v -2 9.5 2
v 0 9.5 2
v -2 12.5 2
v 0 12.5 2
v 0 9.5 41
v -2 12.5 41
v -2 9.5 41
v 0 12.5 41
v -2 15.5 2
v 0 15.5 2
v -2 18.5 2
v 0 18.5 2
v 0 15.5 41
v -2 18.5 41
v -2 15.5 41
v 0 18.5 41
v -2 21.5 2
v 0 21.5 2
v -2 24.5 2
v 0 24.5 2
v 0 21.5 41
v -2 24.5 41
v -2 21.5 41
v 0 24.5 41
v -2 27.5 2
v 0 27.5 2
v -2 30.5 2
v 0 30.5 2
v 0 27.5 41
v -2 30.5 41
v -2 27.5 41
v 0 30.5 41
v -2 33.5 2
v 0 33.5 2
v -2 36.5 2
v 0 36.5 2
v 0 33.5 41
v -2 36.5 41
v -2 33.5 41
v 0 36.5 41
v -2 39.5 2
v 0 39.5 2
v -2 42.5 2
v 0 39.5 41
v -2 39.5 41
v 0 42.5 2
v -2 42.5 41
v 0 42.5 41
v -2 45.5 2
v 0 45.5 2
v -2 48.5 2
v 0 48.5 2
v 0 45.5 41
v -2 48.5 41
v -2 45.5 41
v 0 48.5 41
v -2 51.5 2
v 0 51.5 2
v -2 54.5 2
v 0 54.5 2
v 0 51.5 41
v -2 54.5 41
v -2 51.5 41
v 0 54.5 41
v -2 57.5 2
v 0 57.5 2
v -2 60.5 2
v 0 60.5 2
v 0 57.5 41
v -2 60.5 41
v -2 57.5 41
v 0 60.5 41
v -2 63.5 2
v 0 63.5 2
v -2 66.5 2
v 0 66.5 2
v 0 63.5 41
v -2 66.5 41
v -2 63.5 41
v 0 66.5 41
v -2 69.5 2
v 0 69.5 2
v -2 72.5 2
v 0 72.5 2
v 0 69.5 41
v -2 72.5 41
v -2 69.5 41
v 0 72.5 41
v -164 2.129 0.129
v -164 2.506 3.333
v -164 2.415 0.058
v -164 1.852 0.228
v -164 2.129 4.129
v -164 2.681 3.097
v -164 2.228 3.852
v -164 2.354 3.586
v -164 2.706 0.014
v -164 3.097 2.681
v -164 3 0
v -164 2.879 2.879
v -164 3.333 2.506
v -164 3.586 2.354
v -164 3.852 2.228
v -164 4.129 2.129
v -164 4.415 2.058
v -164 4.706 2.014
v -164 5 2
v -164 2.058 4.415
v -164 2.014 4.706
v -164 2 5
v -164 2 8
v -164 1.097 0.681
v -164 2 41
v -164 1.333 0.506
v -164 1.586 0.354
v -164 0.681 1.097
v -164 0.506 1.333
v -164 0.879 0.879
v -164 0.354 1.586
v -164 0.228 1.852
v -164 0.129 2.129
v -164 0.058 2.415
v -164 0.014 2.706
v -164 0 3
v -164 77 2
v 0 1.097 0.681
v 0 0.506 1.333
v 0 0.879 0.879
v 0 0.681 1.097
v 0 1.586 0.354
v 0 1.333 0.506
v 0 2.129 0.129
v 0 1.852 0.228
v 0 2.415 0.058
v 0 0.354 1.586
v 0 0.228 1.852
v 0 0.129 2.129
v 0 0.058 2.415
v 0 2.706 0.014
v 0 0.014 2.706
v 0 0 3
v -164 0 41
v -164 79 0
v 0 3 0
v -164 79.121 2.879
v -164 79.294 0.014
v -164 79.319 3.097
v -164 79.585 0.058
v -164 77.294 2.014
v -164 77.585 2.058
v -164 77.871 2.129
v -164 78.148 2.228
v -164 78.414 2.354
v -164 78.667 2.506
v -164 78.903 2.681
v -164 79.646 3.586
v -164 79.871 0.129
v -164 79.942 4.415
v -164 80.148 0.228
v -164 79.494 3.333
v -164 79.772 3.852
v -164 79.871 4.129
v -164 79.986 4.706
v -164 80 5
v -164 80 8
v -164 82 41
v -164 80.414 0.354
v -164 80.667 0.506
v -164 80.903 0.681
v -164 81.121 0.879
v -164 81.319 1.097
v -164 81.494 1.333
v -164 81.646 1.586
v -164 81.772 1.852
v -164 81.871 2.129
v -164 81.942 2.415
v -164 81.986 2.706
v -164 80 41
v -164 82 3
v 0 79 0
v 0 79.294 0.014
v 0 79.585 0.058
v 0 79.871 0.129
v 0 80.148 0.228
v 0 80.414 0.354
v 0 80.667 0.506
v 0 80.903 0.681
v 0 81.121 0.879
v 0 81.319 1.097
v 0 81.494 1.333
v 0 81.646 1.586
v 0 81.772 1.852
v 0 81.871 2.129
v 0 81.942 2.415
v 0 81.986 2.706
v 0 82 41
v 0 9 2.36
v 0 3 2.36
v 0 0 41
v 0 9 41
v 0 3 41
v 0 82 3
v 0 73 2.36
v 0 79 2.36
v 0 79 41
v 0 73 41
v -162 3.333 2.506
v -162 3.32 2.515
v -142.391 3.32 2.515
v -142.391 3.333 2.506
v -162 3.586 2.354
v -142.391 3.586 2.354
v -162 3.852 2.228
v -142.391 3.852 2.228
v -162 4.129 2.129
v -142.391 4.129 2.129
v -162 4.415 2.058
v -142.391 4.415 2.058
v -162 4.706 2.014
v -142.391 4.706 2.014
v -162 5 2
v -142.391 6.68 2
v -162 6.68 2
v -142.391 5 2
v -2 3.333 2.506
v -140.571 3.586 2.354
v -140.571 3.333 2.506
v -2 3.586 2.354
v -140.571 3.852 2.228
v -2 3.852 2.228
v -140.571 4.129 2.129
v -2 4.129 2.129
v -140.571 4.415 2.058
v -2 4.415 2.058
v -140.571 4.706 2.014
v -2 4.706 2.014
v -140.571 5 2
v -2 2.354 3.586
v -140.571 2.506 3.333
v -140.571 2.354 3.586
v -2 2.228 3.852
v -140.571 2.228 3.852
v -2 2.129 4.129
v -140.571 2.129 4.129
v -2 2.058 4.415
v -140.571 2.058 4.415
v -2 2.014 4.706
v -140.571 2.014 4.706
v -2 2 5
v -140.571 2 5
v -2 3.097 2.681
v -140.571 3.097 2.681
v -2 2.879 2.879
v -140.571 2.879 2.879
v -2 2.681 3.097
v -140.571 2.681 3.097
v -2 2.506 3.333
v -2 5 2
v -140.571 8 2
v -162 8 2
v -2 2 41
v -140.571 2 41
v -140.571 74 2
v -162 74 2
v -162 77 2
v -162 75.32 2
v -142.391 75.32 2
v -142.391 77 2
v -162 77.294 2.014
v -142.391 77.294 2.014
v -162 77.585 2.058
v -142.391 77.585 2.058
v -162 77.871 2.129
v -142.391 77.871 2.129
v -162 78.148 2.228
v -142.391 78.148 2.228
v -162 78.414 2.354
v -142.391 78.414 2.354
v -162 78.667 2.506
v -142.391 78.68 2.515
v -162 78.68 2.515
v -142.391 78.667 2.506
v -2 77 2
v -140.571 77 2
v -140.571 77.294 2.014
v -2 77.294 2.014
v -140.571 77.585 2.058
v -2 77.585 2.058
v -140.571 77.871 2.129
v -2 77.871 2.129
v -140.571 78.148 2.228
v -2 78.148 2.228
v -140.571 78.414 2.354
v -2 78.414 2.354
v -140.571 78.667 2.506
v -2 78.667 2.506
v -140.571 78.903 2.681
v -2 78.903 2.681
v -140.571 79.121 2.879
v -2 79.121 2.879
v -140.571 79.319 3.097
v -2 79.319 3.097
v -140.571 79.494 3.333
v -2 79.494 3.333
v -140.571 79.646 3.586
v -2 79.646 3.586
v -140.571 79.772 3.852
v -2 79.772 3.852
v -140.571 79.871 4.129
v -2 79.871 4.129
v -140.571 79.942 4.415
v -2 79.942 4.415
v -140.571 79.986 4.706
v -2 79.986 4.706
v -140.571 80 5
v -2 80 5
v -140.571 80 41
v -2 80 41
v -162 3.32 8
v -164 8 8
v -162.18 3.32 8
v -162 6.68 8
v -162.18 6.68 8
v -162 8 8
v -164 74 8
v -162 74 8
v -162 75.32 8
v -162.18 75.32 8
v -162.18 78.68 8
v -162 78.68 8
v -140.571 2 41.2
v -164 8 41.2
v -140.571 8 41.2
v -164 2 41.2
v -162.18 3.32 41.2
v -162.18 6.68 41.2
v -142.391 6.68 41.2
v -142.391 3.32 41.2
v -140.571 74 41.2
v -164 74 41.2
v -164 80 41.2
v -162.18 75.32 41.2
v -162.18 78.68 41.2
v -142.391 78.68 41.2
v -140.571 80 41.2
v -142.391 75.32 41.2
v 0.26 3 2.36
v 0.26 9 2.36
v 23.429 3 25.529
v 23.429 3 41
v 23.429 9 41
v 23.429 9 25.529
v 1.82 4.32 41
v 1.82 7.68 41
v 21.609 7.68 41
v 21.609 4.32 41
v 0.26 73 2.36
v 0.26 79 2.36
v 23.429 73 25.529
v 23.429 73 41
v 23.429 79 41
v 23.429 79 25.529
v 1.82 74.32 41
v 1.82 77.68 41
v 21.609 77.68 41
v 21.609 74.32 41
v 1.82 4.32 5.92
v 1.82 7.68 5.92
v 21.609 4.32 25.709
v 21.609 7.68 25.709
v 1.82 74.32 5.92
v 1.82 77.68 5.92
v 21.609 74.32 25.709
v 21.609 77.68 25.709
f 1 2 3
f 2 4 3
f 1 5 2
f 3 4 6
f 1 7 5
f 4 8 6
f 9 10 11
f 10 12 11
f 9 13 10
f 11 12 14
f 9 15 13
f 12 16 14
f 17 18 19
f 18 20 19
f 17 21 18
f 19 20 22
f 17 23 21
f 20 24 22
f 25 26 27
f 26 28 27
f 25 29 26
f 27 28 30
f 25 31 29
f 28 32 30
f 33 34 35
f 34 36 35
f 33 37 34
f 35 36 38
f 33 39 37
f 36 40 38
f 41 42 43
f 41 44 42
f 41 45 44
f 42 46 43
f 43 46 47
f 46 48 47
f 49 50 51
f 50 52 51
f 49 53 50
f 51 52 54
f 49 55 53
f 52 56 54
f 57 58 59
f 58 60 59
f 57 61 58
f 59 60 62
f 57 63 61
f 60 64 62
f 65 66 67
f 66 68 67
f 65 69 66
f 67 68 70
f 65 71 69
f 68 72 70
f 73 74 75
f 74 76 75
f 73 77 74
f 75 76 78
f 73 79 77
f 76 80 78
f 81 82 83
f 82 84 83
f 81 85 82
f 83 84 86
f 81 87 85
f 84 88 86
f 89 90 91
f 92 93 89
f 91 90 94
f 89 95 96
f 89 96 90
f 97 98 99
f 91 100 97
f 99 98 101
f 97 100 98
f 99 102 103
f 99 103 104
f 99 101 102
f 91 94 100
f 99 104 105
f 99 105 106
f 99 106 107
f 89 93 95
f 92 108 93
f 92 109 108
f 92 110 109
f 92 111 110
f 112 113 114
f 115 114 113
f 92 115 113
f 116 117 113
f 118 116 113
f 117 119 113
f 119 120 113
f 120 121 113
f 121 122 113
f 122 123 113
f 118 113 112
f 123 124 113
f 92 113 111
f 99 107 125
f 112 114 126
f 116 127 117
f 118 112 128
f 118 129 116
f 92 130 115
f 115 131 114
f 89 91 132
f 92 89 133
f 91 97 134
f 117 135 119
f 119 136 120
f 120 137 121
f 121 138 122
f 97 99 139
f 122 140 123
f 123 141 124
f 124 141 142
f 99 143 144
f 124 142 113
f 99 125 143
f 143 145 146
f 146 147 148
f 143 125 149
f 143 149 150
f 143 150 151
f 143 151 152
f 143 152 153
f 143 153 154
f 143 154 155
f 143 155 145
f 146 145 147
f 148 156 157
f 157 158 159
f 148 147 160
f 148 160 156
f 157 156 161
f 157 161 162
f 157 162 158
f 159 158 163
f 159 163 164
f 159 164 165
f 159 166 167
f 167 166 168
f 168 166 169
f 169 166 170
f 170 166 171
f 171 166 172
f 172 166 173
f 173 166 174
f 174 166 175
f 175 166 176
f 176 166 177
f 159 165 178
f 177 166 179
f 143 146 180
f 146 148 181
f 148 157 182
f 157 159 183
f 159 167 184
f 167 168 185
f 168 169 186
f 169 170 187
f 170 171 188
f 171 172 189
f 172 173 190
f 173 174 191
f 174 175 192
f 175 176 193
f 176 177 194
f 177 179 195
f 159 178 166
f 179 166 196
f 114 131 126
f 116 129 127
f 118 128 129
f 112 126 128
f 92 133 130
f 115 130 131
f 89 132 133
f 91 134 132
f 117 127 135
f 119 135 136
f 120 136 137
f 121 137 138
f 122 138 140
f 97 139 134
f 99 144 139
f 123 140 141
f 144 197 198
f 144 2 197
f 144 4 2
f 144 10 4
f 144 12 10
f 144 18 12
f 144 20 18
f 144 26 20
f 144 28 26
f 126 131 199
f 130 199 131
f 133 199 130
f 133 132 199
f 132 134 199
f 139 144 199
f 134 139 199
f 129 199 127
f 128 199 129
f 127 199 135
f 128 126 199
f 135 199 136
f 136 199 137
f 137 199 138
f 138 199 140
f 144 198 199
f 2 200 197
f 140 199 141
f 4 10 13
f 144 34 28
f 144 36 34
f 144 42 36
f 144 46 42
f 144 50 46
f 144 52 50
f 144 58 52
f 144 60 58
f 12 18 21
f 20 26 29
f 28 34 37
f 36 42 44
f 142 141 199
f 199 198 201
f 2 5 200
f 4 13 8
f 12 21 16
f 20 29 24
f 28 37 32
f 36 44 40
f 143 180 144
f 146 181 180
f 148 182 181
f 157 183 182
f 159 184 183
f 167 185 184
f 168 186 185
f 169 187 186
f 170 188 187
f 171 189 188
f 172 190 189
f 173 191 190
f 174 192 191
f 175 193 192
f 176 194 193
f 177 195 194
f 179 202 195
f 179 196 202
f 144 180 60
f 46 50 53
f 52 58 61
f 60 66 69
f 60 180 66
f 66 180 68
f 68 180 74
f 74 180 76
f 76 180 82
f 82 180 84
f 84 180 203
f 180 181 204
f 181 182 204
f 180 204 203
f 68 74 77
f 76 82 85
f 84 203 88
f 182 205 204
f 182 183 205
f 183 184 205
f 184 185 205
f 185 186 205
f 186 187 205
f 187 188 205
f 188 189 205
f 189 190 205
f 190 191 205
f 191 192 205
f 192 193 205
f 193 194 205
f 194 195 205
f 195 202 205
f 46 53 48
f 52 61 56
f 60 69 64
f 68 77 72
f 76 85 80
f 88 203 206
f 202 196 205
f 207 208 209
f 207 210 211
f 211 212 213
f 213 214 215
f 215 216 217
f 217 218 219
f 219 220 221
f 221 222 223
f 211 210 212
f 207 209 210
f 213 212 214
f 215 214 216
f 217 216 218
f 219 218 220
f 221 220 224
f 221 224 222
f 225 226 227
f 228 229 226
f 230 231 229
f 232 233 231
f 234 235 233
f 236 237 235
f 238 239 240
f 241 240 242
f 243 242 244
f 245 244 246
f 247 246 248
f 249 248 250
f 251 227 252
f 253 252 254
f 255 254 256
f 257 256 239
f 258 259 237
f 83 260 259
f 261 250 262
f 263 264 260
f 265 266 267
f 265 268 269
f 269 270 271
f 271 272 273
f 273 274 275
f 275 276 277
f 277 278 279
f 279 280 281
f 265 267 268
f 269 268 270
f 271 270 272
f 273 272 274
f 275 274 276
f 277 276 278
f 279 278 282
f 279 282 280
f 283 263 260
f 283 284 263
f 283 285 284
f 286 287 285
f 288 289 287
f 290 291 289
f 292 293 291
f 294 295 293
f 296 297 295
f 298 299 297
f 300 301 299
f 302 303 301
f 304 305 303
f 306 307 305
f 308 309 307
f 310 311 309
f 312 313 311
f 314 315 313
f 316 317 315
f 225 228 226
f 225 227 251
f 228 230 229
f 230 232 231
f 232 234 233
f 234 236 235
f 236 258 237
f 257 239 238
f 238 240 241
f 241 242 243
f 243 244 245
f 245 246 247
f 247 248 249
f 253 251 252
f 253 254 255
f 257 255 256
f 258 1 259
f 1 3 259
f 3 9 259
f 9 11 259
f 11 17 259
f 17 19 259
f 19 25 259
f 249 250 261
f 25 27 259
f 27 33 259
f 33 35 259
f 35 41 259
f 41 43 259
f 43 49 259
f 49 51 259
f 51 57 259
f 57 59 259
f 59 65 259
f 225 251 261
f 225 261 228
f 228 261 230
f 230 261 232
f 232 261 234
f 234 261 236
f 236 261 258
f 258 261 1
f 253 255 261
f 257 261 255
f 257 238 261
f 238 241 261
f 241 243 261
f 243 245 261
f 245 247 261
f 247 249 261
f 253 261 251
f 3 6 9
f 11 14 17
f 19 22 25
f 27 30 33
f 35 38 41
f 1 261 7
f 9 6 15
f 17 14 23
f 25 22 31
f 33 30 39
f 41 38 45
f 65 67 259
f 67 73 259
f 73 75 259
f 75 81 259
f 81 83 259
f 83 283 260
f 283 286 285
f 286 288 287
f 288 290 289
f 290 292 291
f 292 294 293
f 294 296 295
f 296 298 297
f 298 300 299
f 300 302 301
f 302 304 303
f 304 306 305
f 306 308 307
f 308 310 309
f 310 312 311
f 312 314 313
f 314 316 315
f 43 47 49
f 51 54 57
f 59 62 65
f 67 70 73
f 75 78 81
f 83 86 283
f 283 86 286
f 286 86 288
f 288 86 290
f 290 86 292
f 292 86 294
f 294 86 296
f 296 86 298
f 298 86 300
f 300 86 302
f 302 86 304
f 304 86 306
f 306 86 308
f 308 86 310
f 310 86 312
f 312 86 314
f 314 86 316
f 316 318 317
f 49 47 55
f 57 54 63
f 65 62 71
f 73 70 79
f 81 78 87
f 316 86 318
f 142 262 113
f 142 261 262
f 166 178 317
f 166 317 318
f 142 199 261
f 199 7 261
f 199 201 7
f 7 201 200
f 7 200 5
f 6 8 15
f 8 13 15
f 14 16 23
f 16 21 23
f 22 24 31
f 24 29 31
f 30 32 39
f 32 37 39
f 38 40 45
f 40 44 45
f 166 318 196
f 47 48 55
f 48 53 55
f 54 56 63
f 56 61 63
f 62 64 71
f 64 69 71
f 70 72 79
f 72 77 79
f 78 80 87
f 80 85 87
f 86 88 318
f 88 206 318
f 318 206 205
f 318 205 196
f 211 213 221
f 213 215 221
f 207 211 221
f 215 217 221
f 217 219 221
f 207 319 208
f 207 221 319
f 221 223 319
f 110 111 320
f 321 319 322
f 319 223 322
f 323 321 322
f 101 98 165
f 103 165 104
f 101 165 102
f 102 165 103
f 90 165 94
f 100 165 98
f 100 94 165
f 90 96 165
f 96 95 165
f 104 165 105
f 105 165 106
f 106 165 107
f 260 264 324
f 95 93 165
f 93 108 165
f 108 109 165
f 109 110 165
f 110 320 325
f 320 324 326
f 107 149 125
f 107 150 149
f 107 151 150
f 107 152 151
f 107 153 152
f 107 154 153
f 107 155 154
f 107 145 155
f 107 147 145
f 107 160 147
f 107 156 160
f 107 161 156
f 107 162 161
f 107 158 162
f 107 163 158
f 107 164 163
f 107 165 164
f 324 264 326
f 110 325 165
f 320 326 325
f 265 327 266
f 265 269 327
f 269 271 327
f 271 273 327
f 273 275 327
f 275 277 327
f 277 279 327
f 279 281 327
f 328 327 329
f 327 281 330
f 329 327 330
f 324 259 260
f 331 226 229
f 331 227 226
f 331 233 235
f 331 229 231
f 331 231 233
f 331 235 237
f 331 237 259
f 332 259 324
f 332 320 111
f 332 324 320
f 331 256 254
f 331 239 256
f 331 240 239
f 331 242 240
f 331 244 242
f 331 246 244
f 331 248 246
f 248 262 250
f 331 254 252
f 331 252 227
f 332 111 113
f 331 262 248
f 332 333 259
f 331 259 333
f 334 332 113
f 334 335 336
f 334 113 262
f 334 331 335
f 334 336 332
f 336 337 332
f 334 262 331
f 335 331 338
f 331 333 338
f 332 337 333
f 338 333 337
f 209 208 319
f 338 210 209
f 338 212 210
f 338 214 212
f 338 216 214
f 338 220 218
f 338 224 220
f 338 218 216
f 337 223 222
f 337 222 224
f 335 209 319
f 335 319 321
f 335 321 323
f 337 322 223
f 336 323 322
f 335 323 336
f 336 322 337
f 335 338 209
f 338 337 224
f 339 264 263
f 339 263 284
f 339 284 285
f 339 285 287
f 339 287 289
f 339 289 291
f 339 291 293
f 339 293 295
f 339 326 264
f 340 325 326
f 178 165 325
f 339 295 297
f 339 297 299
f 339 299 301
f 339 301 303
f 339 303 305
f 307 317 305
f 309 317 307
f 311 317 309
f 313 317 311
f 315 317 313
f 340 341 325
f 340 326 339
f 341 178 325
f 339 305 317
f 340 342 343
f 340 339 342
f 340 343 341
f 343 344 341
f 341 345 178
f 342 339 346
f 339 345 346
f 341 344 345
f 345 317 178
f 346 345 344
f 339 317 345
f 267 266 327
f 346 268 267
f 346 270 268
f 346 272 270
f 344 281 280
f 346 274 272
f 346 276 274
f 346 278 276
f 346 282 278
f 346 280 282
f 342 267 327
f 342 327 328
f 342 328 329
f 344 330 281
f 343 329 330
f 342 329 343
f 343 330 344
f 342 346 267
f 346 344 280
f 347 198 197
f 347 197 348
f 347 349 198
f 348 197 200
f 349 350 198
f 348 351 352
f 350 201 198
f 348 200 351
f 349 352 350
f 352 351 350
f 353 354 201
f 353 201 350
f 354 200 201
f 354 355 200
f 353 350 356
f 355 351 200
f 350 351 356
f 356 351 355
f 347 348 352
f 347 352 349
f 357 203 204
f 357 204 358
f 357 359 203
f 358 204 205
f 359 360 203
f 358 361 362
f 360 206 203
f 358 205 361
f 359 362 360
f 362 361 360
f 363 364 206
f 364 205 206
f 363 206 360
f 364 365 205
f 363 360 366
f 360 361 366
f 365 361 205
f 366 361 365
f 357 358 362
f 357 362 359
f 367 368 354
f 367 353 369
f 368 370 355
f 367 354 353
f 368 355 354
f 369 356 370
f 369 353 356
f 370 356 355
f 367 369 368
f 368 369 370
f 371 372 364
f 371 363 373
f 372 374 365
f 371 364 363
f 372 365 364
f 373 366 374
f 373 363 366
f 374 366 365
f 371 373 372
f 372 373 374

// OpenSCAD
// file: mixin.scad
$fn = 64;

_POT_EDGES = [82, 103, 130, 164];
POT_EDGE = 82;
POT_HEIGHT = 164;
WALL_WIDTH = 2;
CORNER_RADIUS = 3;

LEG_WIDTH = 6;
LEG_LENGTH = POT_HEIGHT / 7;
PIN_LENGTH = LEG_LENGTH - WALL_WIDTH * 2;

PIN_WIDTH = 3;
PIN_HEIGHT = POT_EDGE / 2 + POT_EDGE / 7;
FIT_GAP = 0.36;
OVERCUT = 0.1;

FIRST_LEG_Y = CORNER_RADIUS;
SECOND_LEG_Y = POT_EDGE - CORNER_RADIUS - LEG_WIDTH;

SLOT_WIDTH = 3;
SLOT_STEP = 6;

module rounded_box(size = [10, 10, 5], corner_radius = CORNER_RADIUS) {
  translate([size[0] / 2, size[1] / 2, 0]) {
    linear_extrude(height=size[2]) {
      minkowski() {
        square([size[0] - 2 * corner_radius, size[1] - 2 * corner_radius], center=true);
        circle(r=corner_radius);
      }
    }
  }
}

module bottom_slots() {
  between_legs_span = POT_EDGE - 2 * (CORNER_RADIUS + LEG_WIDTH);
  slot_count_half = floor((between_legs_span / 2 - SLOT_WIDTH / 2) / SLOT_STEP);
  for (slot_index = [-slot_count_half:slot_count_half])
    translate([WALL_WIDTH, POT_EDGE / 2 + slot_index * SLOT_STEP - SLOT_WIDTH / 2, -OVERCUT])
      cube([POT_EDGE, SLOT_WIDTH, WALL_WIDTH + OVERCUT * 2]);
}

module pot_shell() {
  rotate([0, -90, 0]) difference() {
    rounded_box([POT_EDGE, POT_EDGE, POT_HEIGHT]);
    translate([WALL_WIDTH, WALL_WIDTH, WALL_WIDTH])
      rounded_box([
        POT_EDGE - WALL_WIDTH * 2,
        POT_EDGE - WALL_WIDTH * 2,
        POT_HEIGHT + WALL_WIDTH * 2,
      ]);
    translate([POT_EDGE / 2, -WALL_WIDTH, -WALL_WIDTH])
      cube([POT_EDGE, POT_EDGE + WALL_WIDTH * 2, POT_HEIGHT * 2]);

    bottom_slots();
  }

  translate([-POT_HEIGHT,WALL_WIDTH,WALL_WIDTH]) cube([WALL_WIDTH,POT_EDGE - WALL_WIDTH * 2,LEG_WIDTH]);
}

module angled_cut(leg_y) {
  translate([-OVERCUT - WALL_WIDTH, leg_y - OVERCUT, 0]) rotate([0, 45, 0])
    cube([LEG_LENGTH + 2 * OVERCUT, LEG_WIDTH + 2 * OVERCUT, POT_EDGE / 2]);
}

module leg(leg_y) {
  leg_height = POT_EDGE / 2;
  difference() {
    translate([0, leg_y, WALL_WIDTH + FIT_GAP])
      cube([LEG_LENGTH, LEG_WIDTH, leg_height - WALL_WIDTH - FIT_GAP]);

    angled_cut(leg_y);
  }
}

module legs() {
  leg(FIRST_LEG_Y);
  leg(SECOND_LEG_Y);
}

module leg_pin(leg_y, pin_width, pin_length) {
  difference() {
    translate([(LEG_LENGTH - pin_length) / 2, leg_y + (LEG_WIDTH - pin_width) / 2, WALL_WIDTH + FIT_GAP])
      cube([pin_length, pin_width, PIN_HEIGHT]);

    angled_cut(leg_y);
  }
}

module leg_pins(pin_width, pin_length) {
  leg_pin(FIRST_LEG_Y, pin_width, pin_length);
  leg_pin(SECOND_LEG_Y, pin_width, pin_length);
}

module leg_with_socket(leg_y) {
  difference() {
    leg(leg_y);
    translate([0, 0, WALL_WIDTH])
      leg_pin(leg_y, PIN_WIDTH + FIT_GAP, PIN_LENGTH + FIT_GAP);
  }
}

module leg_with_pin(leg_y) {
  leg(leg_y);
  leg_pin(leg_y, PIN_WIDTH, PIN_LENGTH);
}

module top_leg(wall_y) {
  translate([-POT_HEIGHT, wall_y, 0.2])
    cube([LEG_LENGTH, LEG_WIDTH, POT_EDGE / 2]);
}

module top_legs() {
  top_leg(WALL_WIDTH);
  top_leg(POT_EDGE - WALL_WIDTH - LEG_WIDTH);
}

module top_leg_pin(wall_y, pin_width, pin_length) {
  translate([-POT_HEIGHT + (LEG_LENGTH - pin_length) / 2, wall_y + (LEG_WIDTH - pin_width) / 2, WALL_WIDTH])
    cube([pin_length, pin_width, PIN_HEIGHT]);
}

module top_leg_pins(pin_width, pin_length) {
  top_leg_pin(WALL_WIDTH, pin_width, pin_length);
  top_leg_pin(POT_EDGE - WALL_WIDTH - LEG_WIDTH, pin_width, pin_length);
}

module top_leg_with_socket(wall_y, pin_width, pin_length) {
  difference() {
    top_leg(wall_y);
    translate([
      -POT_HEIGHT + (LEG_LENGTH - (pin_length + FIT_GAP)) / 2,
      wall_y + (LEG_WIDTH - (pin_width + FIT_GAP)) / 2,
      -OVERCUT,
    ])
      cube([pin_length + FIT_GAP, pin_width + FIT_GAP, PIN_HEIGHT + OVERCUT]);
  }
}

module top_legs_with_sockets(pin_width, pin_length) {
  top_leg_with_socket(WALL_WIDTH, pin_width, pin_length);
  top_leg_with_socket(POT_EDGE - WALL_WIDTH - LEG_WIDTH, pin_width, pin_length);
}
// main file
include <mixin.scad>;

module inner_shell_sockets() {
  pot_shell();
  top_legs_with_sockets(PIN_WIDTH, PIN_LENGTH);
  difference() {
    legs();
    translate([0, 0, WALL_WIDTH])
      leg_pins(PIN_WIDTH + FIT_GAP, PIN_LENGTH + FIT_GAP);
  }
}

inner_shell_sockets();
